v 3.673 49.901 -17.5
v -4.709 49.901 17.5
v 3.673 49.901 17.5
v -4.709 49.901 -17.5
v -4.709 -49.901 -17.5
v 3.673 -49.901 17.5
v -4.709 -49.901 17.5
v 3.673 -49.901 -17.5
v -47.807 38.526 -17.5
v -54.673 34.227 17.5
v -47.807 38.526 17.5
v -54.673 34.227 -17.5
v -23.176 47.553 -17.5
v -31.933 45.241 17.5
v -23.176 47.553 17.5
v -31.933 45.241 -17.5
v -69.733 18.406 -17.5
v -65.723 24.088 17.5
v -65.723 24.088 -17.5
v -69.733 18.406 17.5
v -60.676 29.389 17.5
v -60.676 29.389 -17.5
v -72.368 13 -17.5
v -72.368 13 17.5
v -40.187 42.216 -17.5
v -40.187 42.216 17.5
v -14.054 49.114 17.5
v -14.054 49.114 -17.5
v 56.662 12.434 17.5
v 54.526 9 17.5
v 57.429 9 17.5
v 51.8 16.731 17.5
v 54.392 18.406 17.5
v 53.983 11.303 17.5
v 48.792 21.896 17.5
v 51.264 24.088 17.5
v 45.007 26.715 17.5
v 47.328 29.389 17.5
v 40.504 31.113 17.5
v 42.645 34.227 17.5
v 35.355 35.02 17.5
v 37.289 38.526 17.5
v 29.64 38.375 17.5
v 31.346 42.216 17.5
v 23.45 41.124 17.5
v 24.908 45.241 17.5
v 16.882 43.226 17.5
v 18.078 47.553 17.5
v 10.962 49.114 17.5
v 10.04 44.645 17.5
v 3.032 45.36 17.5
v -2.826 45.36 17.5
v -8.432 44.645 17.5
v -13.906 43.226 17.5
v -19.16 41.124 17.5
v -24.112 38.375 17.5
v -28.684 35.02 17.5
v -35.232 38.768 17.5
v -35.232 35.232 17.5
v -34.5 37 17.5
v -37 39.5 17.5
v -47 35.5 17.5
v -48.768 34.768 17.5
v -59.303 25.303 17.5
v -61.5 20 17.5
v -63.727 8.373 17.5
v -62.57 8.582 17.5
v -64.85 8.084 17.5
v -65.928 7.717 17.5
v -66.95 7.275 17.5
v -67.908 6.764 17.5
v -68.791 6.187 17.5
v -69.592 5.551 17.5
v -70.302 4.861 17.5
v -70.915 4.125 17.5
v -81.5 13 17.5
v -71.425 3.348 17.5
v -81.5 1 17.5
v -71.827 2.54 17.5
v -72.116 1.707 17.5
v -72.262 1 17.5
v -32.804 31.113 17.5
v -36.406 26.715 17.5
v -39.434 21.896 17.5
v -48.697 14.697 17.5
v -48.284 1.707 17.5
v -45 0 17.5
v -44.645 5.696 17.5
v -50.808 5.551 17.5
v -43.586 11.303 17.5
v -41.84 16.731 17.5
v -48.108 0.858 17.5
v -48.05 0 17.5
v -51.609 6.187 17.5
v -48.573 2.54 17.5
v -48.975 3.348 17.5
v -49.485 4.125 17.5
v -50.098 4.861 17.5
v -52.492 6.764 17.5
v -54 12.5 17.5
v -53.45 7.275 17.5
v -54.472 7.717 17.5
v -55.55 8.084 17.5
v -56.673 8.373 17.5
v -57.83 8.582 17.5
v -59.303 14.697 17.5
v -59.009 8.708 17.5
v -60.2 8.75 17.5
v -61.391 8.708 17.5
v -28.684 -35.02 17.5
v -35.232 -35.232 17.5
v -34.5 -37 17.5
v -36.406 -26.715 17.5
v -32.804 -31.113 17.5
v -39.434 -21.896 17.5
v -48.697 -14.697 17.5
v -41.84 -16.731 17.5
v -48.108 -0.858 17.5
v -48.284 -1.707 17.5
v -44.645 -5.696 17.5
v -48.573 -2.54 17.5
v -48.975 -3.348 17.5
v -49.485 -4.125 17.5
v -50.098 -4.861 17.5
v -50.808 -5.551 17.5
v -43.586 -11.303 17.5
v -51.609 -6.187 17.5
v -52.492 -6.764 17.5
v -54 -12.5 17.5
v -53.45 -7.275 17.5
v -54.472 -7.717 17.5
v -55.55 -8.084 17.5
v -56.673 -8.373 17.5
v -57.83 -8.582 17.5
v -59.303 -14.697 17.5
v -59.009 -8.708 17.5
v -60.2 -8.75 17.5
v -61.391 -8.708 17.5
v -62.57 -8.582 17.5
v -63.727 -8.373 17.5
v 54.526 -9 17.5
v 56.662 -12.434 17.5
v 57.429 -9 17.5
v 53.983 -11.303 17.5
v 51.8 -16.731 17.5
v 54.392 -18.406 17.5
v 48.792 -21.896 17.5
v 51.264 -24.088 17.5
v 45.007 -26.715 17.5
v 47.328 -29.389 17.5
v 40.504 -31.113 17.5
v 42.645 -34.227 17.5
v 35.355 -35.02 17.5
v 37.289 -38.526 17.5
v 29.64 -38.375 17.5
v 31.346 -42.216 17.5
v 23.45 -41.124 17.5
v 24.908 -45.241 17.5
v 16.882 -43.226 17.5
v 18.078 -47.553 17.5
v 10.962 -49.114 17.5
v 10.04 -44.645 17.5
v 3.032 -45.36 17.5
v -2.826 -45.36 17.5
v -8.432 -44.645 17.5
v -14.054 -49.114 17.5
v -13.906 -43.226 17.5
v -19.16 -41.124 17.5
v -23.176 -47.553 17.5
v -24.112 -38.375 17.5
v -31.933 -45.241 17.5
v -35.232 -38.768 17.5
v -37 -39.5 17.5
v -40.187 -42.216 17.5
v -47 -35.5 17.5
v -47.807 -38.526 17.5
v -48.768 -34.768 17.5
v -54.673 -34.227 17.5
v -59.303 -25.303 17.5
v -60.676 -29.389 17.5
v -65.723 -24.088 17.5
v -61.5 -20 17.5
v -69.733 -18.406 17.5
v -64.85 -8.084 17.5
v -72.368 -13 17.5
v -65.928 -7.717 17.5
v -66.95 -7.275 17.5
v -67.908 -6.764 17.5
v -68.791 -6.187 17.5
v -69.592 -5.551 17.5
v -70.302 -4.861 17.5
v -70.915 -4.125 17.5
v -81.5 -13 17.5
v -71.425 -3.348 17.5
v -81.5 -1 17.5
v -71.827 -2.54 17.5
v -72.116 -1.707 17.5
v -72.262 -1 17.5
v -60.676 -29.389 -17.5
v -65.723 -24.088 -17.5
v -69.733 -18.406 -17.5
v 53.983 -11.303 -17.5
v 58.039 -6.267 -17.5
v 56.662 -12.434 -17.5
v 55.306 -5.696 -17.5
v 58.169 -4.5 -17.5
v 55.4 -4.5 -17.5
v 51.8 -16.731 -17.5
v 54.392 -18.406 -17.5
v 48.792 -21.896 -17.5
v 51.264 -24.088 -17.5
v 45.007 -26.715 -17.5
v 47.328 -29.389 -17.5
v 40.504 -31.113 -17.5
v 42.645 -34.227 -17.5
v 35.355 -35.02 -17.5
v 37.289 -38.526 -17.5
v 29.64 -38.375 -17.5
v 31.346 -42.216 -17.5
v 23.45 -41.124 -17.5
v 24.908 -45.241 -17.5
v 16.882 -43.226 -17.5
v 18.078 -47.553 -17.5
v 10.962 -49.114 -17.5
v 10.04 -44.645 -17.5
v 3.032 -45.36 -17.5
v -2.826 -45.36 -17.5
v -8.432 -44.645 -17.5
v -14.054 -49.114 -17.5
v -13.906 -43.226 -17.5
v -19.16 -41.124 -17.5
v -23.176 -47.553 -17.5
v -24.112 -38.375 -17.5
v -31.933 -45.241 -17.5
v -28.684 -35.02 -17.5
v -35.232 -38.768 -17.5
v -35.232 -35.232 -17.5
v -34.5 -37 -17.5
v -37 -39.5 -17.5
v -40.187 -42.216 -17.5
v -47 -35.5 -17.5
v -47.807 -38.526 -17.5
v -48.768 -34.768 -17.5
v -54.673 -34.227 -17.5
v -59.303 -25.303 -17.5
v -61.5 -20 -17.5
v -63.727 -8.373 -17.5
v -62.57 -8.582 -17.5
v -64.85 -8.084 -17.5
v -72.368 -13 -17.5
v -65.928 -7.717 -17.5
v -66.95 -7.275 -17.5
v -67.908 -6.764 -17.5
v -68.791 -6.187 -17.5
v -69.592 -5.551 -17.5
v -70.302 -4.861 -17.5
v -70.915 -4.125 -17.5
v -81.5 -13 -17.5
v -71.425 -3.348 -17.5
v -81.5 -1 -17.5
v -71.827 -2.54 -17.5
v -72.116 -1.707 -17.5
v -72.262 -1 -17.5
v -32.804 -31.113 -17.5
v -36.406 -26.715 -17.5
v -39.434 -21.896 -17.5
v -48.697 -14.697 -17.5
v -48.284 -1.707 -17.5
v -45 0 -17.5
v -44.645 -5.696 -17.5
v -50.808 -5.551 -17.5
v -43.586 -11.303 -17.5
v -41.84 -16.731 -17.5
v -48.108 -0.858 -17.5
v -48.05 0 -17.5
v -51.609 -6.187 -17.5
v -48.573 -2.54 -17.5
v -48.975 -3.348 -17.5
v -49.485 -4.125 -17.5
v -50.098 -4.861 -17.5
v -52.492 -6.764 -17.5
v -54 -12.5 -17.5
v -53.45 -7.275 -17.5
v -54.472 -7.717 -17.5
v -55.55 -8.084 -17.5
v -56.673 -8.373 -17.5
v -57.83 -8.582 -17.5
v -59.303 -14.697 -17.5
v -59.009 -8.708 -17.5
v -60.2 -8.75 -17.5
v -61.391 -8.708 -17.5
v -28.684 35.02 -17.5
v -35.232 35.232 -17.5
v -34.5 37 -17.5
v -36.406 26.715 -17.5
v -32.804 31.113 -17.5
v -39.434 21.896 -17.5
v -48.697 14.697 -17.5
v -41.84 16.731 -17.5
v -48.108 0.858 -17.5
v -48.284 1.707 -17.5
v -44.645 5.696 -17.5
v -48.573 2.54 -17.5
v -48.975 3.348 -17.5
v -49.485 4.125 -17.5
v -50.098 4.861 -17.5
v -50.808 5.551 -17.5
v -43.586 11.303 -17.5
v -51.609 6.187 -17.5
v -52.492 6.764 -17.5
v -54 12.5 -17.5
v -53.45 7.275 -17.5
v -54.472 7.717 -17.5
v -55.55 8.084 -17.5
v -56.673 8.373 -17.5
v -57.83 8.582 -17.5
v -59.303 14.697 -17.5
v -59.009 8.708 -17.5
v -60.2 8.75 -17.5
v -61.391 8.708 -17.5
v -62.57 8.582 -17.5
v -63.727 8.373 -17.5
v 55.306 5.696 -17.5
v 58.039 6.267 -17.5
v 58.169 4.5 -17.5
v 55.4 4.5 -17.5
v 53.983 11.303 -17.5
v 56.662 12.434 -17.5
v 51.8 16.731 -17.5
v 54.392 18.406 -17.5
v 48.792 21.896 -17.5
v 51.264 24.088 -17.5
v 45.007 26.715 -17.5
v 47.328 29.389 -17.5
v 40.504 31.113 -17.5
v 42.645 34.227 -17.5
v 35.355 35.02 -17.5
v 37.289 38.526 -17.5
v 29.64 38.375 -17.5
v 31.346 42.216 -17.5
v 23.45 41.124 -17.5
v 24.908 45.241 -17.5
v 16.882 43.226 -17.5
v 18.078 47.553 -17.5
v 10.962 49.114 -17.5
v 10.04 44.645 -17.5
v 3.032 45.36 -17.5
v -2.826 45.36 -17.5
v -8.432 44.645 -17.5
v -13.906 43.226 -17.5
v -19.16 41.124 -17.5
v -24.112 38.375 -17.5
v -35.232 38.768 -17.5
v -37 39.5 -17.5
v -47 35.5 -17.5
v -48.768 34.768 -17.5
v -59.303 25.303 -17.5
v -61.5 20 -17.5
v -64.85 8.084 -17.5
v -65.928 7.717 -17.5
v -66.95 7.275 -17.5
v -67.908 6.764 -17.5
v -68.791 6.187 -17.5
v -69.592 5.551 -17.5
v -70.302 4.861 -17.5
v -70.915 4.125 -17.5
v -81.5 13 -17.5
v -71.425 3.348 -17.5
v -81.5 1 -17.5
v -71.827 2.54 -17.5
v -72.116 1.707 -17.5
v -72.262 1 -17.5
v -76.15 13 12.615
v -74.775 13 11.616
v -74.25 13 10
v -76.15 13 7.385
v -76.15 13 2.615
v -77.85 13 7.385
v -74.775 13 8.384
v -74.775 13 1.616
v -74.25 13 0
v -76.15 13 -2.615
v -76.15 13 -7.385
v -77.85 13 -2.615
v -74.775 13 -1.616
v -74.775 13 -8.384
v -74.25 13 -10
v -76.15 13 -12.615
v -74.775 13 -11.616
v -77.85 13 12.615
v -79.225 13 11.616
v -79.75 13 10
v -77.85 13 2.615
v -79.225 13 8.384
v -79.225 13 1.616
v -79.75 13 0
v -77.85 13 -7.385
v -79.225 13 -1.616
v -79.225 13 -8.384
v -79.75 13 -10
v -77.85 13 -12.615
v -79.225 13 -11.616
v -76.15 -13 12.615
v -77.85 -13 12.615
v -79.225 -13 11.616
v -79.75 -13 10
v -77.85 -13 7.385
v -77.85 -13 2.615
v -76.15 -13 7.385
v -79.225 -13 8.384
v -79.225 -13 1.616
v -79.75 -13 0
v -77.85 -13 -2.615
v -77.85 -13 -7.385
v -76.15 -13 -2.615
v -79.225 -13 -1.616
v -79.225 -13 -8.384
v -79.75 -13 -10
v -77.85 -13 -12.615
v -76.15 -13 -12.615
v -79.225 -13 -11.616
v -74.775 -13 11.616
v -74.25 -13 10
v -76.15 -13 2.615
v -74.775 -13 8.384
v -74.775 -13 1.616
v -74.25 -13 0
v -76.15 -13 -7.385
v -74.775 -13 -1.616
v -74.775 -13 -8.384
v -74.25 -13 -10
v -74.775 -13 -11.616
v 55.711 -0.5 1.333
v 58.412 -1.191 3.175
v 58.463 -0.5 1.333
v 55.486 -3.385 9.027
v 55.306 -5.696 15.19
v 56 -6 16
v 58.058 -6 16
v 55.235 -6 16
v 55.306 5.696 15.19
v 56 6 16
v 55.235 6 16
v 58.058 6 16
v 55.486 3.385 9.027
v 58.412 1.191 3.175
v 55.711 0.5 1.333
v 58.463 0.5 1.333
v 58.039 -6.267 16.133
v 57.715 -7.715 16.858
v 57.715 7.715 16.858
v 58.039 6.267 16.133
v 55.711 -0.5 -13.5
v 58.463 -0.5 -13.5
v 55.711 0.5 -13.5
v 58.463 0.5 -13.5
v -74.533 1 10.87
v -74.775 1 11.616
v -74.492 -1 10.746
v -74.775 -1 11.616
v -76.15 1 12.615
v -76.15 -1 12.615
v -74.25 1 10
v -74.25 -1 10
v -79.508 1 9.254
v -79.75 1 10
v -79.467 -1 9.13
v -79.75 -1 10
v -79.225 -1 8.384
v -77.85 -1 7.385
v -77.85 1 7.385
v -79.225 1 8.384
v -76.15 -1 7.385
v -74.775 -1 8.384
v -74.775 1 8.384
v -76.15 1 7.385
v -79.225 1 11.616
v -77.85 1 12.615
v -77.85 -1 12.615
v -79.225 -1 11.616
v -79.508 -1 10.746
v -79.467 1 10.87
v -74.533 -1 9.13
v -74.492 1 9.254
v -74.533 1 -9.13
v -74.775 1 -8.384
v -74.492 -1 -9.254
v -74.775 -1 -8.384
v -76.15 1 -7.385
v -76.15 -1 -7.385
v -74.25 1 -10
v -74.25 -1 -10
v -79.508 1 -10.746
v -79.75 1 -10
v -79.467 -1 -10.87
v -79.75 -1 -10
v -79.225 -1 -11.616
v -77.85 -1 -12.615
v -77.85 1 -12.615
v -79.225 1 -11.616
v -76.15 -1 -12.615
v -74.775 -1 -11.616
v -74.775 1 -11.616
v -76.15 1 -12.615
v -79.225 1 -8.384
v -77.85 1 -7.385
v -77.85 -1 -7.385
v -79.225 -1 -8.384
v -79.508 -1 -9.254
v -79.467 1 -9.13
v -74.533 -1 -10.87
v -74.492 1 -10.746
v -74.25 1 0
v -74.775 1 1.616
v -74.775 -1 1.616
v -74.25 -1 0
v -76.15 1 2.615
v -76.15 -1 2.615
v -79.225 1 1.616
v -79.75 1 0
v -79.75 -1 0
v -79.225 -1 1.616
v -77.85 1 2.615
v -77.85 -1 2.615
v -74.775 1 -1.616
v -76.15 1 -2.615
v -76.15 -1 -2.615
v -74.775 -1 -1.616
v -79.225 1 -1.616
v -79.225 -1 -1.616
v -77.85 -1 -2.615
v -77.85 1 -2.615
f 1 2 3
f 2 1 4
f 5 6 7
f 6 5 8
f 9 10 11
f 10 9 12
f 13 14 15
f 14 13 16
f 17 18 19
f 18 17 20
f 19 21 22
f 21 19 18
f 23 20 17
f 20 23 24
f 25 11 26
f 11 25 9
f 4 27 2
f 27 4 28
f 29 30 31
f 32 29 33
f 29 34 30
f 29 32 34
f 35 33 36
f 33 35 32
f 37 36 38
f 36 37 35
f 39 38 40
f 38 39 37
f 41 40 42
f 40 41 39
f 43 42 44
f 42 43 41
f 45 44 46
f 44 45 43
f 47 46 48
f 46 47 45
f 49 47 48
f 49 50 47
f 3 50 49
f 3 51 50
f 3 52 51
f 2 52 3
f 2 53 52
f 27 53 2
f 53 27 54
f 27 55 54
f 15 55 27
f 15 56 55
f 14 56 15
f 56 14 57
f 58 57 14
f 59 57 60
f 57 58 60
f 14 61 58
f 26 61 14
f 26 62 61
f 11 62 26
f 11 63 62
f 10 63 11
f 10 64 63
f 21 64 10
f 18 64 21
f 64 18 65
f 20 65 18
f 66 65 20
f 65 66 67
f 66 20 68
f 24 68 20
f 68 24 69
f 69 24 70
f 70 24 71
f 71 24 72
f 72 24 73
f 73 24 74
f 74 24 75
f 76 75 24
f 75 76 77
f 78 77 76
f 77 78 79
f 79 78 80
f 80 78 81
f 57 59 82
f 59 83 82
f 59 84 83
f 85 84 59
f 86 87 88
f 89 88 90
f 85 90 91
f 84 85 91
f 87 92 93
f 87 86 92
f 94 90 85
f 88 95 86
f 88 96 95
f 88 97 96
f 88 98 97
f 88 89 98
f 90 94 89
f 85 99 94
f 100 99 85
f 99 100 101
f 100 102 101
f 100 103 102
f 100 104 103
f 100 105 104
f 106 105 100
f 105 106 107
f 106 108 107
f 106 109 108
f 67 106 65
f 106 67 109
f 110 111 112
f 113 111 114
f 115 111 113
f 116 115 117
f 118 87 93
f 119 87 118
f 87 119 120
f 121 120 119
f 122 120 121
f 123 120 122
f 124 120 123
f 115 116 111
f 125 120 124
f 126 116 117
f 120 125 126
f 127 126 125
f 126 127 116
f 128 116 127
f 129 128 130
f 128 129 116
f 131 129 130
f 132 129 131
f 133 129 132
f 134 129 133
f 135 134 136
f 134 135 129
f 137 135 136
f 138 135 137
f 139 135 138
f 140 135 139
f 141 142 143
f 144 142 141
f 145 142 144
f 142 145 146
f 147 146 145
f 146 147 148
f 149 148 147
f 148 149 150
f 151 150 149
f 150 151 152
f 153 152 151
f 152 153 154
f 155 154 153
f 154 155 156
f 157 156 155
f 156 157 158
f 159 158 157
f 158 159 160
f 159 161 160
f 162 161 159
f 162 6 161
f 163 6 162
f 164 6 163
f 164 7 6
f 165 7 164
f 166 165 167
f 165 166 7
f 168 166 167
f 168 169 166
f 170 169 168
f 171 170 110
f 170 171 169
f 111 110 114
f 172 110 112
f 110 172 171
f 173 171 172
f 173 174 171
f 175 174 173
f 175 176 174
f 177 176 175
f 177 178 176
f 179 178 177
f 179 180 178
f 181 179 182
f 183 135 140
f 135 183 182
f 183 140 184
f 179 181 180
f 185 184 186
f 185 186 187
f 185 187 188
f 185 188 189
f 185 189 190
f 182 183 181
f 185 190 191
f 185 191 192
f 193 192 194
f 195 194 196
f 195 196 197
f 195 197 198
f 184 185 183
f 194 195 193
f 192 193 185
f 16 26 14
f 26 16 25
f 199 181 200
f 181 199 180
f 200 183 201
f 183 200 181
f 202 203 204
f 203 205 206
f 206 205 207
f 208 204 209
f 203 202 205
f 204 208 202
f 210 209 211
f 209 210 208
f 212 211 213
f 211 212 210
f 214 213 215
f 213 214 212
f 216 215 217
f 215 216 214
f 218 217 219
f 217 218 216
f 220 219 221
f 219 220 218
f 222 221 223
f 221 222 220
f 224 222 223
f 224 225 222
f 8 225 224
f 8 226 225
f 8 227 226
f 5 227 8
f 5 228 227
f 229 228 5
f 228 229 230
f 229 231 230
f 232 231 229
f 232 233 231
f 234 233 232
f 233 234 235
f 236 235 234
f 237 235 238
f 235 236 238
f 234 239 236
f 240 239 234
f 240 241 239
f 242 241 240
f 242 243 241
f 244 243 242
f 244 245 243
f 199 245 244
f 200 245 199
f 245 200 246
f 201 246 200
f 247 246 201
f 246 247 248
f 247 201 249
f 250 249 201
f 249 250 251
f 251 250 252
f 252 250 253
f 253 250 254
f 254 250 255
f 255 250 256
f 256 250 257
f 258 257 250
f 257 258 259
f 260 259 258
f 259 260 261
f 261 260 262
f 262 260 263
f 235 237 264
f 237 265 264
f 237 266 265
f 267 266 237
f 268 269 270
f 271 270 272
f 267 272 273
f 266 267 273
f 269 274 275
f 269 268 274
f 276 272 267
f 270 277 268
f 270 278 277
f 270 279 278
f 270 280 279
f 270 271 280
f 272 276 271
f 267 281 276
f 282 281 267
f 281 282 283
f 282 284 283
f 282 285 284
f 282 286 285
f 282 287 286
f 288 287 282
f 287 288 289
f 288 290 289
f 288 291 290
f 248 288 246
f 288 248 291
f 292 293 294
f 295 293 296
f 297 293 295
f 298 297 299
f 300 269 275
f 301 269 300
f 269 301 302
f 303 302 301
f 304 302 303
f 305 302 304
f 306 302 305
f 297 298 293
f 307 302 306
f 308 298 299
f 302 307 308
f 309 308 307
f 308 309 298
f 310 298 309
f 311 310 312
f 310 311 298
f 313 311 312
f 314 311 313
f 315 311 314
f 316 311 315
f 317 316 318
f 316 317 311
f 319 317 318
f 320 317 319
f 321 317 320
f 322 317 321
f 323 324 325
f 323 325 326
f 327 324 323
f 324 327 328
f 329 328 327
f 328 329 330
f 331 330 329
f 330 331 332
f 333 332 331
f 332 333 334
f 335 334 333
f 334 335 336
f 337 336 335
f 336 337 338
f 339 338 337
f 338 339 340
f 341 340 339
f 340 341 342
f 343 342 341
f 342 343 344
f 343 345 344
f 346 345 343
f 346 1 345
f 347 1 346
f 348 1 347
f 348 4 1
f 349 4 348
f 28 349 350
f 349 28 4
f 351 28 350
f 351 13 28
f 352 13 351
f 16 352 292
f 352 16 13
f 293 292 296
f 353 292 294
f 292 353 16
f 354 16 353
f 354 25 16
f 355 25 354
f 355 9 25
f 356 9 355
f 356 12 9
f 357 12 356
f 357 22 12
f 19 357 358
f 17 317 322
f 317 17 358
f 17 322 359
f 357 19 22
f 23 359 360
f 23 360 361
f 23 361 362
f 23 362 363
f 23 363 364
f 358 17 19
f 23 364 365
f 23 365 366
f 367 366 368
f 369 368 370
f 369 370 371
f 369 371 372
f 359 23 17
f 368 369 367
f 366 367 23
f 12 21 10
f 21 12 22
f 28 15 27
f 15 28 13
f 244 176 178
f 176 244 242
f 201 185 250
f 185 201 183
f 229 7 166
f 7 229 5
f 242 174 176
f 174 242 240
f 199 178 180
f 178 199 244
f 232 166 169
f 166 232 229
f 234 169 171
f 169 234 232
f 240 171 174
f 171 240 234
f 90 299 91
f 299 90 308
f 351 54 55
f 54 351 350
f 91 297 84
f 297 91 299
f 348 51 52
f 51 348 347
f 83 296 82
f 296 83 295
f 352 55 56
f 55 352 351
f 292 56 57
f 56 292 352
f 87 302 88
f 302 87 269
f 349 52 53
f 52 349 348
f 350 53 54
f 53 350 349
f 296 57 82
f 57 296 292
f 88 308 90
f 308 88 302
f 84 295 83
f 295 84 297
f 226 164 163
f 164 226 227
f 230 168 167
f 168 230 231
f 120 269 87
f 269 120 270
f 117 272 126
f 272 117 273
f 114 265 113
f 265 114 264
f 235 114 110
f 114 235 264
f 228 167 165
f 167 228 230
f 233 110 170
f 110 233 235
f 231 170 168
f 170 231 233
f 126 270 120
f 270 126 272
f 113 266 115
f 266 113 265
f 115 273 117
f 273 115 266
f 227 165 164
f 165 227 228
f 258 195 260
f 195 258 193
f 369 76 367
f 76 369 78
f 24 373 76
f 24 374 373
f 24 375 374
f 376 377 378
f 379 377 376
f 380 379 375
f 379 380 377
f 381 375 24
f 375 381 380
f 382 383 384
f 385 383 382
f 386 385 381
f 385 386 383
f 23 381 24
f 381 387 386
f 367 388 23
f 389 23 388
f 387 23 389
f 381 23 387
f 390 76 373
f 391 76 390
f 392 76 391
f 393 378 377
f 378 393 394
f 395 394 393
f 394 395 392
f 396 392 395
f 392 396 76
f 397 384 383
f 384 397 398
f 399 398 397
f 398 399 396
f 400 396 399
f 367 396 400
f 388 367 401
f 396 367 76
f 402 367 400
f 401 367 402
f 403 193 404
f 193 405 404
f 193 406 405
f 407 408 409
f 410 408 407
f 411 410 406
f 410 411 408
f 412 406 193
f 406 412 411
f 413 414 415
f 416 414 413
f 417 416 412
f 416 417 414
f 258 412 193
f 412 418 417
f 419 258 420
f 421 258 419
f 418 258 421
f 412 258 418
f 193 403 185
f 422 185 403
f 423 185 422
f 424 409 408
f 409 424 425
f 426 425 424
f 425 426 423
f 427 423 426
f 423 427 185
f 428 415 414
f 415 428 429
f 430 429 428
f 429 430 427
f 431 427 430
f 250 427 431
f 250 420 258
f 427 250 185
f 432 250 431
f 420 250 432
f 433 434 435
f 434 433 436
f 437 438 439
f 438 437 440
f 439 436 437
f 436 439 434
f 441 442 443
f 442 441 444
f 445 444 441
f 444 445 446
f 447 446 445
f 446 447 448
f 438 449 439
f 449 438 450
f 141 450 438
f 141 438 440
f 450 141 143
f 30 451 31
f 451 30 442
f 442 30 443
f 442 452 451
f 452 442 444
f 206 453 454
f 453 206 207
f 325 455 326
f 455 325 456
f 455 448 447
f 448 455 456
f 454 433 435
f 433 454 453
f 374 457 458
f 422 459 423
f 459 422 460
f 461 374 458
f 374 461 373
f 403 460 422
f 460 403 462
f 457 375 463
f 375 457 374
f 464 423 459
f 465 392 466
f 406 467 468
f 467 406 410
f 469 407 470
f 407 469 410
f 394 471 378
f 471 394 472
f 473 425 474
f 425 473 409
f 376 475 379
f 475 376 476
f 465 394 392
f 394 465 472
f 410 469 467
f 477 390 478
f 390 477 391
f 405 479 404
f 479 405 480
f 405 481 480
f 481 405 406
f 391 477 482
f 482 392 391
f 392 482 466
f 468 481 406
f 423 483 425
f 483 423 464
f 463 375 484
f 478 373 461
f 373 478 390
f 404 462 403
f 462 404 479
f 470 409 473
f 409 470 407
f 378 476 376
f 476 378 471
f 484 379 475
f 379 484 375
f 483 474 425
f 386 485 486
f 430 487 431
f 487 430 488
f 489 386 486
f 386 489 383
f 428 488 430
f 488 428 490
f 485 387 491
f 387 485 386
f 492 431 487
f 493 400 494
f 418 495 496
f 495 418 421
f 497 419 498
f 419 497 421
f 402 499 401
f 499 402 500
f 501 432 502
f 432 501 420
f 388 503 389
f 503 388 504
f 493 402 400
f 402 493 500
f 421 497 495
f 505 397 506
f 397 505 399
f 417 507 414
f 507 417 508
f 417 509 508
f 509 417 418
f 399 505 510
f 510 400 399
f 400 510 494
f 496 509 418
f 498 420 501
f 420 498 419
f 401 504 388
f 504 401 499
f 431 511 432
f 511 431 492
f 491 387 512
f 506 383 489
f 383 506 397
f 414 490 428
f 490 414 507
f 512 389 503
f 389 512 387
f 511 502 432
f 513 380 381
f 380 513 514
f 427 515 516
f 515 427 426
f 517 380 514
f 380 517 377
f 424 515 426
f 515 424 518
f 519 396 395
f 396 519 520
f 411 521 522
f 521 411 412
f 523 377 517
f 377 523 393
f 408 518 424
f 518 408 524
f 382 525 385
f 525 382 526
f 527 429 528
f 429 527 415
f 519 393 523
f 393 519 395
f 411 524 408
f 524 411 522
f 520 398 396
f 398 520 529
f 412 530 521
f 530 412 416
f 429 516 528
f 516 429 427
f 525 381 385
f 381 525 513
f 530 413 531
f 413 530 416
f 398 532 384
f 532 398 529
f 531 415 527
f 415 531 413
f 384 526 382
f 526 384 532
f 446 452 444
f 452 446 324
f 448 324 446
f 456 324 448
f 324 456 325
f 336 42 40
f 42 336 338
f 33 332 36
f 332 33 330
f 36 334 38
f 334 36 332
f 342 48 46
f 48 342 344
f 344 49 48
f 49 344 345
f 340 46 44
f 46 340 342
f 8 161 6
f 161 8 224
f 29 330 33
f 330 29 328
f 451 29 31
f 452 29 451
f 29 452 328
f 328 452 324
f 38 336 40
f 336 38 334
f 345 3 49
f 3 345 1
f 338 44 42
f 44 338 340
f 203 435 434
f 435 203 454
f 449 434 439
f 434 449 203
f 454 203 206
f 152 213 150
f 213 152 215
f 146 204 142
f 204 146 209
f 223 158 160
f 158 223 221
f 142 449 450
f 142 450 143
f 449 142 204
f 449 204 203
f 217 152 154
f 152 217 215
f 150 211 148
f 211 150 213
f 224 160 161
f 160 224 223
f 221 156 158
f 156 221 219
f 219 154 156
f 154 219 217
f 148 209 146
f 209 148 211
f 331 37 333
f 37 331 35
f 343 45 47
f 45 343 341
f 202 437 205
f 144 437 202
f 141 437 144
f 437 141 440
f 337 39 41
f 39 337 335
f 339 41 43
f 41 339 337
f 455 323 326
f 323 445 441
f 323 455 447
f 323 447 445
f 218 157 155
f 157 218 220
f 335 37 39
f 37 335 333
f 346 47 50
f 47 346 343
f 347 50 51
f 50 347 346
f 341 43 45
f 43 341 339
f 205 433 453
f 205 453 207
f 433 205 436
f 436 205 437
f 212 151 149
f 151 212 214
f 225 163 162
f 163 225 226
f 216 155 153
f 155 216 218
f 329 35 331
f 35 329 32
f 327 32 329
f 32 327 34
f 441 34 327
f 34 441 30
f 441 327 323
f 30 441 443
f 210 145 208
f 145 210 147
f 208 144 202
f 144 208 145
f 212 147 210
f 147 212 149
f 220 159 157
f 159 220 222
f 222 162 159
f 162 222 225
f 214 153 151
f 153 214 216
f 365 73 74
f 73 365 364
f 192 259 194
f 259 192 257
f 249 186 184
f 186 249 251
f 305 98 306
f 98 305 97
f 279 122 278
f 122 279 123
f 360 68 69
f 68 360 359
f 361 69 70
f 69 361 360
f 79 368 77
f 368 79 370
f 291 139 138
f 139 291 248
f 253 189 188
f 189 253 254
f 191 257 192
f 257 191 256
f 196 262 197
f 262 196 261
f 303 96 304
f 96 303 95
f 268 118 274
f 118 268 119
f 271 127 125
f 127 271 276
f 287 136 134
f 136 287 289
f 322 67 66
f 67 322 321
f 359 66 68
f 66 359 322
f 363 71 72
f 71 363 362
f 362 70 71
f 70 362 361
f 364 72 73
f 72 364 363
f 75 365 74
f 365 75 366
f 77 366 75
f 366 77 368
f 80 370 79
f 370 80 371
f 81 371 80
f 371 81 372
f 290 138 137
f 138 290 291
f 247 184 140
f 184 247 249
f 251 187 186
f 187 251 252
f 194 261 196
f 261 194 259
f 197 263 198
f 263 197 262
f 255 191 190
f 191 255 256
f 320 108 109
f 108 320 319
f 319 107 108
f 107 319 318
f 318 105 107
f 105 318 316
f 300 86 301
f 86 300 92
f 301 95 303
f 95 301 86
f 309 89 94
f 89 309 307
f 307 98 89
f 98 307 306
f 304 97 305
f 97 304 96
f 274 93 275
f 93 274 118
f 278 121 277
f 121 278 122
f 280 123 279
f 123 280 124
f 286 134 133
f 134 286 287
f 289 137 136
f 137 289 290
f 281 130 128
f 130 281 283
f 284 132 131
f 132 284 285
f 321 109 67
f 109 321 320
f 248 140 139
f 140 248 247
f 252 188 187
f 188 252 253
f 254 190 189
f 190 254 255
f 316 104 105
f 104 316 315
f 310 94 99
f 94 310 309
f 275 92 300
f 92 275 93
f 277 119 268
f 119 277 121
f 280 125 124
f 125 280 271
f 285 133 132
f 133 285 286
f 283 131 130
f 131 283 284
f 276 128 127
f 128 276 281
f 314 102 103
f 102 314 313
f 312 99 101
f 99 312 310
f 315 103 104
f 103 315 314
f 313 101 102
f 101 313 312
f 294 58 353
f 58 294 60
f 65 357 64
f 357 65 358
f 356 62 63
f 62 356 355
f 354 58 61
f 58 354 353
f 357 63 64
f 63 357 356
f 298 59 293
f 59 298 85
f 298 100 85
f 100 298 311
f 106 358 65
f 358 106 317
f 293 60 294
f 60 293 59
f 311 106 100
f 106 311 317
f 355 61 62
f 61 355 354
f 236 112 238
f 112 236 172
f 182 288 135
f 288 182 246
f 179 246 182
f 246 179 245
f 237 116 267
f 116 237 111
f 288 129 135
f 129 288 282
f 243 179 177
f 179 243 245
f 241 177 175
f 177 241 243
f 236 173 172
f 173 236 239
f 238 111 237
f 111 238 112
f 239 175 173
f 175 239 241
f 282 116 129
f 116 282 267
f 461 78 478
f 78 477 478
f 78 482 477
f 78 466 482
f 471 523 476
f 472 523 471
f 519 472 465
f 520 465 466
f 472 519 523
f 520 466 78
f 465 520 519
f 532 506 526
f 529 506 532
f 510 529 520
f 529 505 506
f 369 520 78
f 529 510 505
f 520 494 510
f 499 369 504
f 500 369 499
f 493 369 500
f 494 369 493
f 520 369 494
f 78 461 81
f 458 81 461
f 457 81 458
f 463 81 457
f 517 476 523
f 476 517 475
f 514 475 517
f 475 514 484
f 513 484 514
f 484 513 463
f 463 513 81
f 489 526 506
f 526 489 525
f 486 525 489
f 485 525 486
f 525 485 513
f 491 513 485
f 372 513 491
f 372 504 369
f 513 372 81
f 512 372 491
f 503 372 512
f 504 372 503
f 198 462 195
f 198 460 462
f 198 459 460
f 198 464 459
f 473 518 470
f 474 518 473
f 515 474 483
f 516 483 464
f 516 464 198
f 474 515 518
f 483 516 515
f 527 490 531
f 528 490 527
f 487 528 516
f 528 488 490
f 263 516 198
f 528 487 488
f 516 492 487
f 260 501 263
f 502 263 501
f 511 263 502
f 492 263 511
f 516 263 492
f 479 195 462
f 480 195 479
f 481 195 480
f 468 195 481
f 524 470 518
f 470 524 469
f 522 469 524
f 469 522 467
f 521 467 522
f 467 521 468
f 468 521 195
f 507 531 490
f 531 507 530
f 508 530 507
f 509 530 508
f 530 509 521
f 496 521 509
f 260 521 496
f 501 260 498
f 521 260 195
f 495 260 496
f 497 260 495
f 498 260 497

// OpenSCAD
height=35;
cutout_height = height + 1;

// for opening side
od_1 = 100.0;
id_1 = 90;

// for support side
od_2 = 150;
id_2 = 90;

screw_mount_width = 26;

screw_x_offset = -77;

cuff_facets = 50;

module cutouts() {
  ellipse_1 = 17.5; // 17.8
  ellipse_2 = 24.3;

  // center, for handle
  translate([-60.2,0,0])
    rotate([0,0,90])
      scale([1,ellipse_2/ellipse_1,1])
        cylinder(h=cutout_height, d=ellipse_1, center=true, $fn=64);

  module cutout() {
    /*translate([-37,37,0])
      rotate([0,0,120])
        scale([0.35,1.5,1])
          cylinder(h=cutout_height, d=ellipse_1, center=true, $fn=8);
    translate([-48,27,0])
      rotate([0,0,150])
        scale([0.35,1.25,1])
          cylinder(h=cutout_height, d=ellipse_1, center=true, $fn=8);*/
    hull() {
      facets = 8;
      translate([-37,37,0])
        cylinder(h=cutout_height, d=5, center=true, $fn=facets);
      translate([-47,33,0])
        cylinder(h=cutout_height, d=5, center=true, $fn=facets);
      translate([-54,20,0])
        cylinder(h=cutout_height, d=15, center=true, $fn=facets);
    }
  }

  cutout();

  mirror([0,1,0]) cutout();
}

module support_side() {
  difference() {
    union() {
      difference() {
        difference() {
          // outer
          scale([od_2/od_1,1,1]) {
            cylinder(h=height, d=od_1, center=true, $fn=cuff_facets);
          }

          // inner
          scale([id_2/id_1,1.01,1]) {
            cylinder(h=cutout_height, d=id_1, center=true, $fn=cuff_facets);
          }
        }
        // cut off ellipses at middle
        translate([41,0,0]) cube([80,100,cutout_height], center=true);
      }

      // screw mount ridge
      translate([screw_x_offset+1,0,0]) {
        difference() {
          cube([11, screw_mount_width, height], center=true);
        }
      }
    }

    cutouts();

    // screw mount gap
    translate([screw_x_offset,0,0]) cube([20,2,height], center=true);
  }
}

module opening_side() {
  difference() {
    difference() {
      // outer
      scale([1.17,1,1]) {
        cylinder(h=height, d=od_1, center=true, $fn=cuff_facets);
      }

      // inner
      translate([-0.5,0,0]) {
        scale([1.25,1.01,1]) {
          cylinder(h=cutout_height, d=id_1, center=true, $fn=cuff_facets);
        }
      }

    }
    // cut off ellipses at middle
    translate([-41,0,0]) cube([80,100,cutout_height], center=true);

    // cuff front opening
    translate([60,0,0]) {
      rotate([0,270,0]) linear_extrude(height=10) polygon(points=[[0,0],[20,-7.5],[20,7.5]]);
      translate([0,0,13])
        rotate([0,270,0]) linear_extrude(height=10) polygon(points=[[0,0],[5,-10],[5,10]]);
        translate([0,0,-13])
          rotate([0,270,0]) linear_extrude(height=10) polygon(points=[[0,0],[-5,-5],[-5,5]]);
      cube([10,1,height,], center=true);
    }
  }
}

module screw_hole() {
  rotate([90,0,0]) {
    cylinder(d=5.5, h=screw_mount_width, center=true, $fn=10);
  }
}

module full_cuff() {
  difference() {
    union() {
      support_side();
      opening_side();
    }

    translate([screw_x_offset,0,0]) {
      translate([0,0,10]) screw_hole();
      translate([0,0,-10]) screw_hole();
      translate([0,0,0]) screw_hole();
    }
  }
}

/*support_side();*/
/*opening_side();*/
// intersection() {
  full_cuff();
  // translate([-85,-25,-14]) cube([50,50,8]);
  // translate([-85,-50,-18]) cube([200,200,2]);
// }
